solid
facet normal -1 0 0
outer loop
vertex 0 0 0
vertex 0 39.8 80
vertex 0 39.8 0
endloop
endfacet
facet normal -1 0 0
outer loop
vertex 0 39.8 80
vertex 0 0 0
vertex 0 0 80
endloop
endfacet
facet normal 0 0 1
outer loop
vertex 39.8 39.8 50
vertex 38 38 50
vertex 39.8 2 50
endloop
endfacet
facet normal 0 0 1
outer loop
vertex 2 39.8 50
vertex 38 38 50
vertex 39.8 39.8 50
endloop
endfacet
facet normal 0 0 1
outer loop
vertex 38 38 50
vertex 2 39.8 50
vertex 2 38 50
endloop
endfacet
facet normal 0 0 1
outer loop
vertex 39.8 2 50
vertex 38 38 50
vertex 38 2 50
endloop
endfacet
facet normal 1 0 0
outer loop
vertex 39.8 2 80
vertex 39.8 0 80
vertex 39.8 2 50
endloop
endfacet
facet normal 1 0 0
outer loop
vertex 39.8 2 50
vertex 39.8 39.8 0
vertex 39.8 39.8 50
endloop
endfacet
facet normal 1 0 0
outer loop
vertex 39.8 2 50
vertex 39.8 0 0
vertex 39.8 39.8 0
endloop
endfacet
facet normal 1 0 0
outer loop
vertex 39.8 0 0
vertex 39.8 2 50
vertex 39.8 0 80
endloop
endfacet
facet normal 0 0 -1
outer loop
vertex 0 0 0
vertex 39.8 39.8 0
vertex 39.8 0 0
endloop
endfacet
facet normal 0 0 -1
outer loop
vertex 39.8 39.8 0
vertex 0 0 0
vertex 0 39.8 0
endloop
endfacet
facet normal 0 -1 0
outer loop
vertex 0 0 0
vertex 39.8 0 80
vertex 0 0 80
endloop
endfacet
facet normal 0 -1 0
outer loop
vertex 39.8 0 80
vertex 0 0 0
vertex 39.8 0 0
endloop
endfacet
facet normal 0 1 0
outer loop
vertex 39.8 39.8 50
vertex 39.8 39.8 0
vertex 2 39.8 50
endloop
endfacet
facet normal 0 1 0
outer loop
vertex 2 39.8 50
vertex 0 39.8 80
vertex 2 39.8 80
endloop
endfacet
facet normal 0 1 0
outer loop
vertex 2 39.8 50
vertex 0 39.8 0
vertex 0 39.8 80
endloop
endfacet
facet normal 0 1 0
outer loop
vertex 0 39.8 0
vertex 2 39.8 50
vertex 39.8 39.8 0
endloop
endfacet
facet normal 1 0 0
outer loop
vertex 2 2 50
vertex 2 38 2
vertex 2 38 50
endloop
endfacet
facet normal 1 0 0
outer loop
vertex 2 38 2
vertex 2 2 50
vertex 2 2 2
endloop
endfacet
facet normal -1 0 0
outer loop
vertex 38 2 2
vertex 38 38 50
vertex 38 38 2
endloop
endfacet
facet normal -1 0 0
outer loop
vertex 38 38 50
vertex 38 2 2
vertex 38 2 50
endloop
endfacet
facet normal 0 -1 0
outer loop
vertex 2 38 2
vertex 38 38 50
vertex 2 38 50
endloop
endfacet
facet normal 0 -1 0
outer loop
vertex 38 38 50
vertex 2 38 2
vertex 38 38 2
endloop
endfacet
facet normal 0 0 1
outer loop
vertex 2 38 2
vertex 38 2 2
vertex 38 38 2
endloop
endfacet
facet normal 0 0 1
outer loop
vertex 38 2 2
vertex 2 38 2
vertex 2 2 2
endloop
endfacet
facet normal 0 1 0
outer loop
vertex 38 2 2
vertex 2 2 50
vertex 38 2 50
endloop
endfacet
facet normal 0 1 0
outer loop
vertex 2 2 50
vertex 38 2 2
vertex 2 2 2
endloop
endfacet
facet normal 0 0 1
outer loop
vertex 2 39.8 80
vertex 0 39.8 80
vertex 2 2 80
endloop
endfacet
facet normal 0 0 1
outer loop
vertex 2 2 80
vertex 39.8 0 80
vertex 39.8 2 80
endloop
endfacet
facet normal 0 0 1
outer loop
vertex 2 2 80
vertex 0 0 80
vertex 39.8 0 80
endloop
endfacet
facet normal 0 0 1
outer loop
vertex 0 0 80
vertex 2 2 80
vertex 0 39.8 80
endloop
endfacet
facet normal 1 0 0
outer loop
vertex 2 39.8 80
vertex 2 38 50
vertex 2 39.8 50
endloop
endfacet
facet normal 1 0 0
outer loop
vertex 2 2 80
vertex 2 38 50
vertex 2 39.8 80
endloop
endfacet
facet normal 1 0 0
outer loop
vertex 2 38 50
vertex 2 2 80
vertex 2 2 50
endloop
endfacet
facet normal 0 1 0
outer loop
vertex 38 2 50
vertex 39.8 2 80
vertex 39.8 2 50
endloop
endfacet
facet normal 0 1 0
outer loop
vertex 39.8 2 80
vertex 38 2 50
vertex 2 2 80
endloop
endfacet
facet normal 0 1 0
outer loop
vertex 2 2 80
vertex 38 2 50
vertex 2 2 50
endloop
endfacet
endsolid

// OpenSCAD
h = 50;
size = 39.8;

// bottom
difference(){
    cube([size,size,h]);
    translate([2,2,2]){
        cube([36,36,h]);
    }
}

// baffle
bh = 30;
translate([0,0,h]){
    cube([2,size,bh]);
}

translate([0,0,h]){
    cube([size,2,bh]);
}
